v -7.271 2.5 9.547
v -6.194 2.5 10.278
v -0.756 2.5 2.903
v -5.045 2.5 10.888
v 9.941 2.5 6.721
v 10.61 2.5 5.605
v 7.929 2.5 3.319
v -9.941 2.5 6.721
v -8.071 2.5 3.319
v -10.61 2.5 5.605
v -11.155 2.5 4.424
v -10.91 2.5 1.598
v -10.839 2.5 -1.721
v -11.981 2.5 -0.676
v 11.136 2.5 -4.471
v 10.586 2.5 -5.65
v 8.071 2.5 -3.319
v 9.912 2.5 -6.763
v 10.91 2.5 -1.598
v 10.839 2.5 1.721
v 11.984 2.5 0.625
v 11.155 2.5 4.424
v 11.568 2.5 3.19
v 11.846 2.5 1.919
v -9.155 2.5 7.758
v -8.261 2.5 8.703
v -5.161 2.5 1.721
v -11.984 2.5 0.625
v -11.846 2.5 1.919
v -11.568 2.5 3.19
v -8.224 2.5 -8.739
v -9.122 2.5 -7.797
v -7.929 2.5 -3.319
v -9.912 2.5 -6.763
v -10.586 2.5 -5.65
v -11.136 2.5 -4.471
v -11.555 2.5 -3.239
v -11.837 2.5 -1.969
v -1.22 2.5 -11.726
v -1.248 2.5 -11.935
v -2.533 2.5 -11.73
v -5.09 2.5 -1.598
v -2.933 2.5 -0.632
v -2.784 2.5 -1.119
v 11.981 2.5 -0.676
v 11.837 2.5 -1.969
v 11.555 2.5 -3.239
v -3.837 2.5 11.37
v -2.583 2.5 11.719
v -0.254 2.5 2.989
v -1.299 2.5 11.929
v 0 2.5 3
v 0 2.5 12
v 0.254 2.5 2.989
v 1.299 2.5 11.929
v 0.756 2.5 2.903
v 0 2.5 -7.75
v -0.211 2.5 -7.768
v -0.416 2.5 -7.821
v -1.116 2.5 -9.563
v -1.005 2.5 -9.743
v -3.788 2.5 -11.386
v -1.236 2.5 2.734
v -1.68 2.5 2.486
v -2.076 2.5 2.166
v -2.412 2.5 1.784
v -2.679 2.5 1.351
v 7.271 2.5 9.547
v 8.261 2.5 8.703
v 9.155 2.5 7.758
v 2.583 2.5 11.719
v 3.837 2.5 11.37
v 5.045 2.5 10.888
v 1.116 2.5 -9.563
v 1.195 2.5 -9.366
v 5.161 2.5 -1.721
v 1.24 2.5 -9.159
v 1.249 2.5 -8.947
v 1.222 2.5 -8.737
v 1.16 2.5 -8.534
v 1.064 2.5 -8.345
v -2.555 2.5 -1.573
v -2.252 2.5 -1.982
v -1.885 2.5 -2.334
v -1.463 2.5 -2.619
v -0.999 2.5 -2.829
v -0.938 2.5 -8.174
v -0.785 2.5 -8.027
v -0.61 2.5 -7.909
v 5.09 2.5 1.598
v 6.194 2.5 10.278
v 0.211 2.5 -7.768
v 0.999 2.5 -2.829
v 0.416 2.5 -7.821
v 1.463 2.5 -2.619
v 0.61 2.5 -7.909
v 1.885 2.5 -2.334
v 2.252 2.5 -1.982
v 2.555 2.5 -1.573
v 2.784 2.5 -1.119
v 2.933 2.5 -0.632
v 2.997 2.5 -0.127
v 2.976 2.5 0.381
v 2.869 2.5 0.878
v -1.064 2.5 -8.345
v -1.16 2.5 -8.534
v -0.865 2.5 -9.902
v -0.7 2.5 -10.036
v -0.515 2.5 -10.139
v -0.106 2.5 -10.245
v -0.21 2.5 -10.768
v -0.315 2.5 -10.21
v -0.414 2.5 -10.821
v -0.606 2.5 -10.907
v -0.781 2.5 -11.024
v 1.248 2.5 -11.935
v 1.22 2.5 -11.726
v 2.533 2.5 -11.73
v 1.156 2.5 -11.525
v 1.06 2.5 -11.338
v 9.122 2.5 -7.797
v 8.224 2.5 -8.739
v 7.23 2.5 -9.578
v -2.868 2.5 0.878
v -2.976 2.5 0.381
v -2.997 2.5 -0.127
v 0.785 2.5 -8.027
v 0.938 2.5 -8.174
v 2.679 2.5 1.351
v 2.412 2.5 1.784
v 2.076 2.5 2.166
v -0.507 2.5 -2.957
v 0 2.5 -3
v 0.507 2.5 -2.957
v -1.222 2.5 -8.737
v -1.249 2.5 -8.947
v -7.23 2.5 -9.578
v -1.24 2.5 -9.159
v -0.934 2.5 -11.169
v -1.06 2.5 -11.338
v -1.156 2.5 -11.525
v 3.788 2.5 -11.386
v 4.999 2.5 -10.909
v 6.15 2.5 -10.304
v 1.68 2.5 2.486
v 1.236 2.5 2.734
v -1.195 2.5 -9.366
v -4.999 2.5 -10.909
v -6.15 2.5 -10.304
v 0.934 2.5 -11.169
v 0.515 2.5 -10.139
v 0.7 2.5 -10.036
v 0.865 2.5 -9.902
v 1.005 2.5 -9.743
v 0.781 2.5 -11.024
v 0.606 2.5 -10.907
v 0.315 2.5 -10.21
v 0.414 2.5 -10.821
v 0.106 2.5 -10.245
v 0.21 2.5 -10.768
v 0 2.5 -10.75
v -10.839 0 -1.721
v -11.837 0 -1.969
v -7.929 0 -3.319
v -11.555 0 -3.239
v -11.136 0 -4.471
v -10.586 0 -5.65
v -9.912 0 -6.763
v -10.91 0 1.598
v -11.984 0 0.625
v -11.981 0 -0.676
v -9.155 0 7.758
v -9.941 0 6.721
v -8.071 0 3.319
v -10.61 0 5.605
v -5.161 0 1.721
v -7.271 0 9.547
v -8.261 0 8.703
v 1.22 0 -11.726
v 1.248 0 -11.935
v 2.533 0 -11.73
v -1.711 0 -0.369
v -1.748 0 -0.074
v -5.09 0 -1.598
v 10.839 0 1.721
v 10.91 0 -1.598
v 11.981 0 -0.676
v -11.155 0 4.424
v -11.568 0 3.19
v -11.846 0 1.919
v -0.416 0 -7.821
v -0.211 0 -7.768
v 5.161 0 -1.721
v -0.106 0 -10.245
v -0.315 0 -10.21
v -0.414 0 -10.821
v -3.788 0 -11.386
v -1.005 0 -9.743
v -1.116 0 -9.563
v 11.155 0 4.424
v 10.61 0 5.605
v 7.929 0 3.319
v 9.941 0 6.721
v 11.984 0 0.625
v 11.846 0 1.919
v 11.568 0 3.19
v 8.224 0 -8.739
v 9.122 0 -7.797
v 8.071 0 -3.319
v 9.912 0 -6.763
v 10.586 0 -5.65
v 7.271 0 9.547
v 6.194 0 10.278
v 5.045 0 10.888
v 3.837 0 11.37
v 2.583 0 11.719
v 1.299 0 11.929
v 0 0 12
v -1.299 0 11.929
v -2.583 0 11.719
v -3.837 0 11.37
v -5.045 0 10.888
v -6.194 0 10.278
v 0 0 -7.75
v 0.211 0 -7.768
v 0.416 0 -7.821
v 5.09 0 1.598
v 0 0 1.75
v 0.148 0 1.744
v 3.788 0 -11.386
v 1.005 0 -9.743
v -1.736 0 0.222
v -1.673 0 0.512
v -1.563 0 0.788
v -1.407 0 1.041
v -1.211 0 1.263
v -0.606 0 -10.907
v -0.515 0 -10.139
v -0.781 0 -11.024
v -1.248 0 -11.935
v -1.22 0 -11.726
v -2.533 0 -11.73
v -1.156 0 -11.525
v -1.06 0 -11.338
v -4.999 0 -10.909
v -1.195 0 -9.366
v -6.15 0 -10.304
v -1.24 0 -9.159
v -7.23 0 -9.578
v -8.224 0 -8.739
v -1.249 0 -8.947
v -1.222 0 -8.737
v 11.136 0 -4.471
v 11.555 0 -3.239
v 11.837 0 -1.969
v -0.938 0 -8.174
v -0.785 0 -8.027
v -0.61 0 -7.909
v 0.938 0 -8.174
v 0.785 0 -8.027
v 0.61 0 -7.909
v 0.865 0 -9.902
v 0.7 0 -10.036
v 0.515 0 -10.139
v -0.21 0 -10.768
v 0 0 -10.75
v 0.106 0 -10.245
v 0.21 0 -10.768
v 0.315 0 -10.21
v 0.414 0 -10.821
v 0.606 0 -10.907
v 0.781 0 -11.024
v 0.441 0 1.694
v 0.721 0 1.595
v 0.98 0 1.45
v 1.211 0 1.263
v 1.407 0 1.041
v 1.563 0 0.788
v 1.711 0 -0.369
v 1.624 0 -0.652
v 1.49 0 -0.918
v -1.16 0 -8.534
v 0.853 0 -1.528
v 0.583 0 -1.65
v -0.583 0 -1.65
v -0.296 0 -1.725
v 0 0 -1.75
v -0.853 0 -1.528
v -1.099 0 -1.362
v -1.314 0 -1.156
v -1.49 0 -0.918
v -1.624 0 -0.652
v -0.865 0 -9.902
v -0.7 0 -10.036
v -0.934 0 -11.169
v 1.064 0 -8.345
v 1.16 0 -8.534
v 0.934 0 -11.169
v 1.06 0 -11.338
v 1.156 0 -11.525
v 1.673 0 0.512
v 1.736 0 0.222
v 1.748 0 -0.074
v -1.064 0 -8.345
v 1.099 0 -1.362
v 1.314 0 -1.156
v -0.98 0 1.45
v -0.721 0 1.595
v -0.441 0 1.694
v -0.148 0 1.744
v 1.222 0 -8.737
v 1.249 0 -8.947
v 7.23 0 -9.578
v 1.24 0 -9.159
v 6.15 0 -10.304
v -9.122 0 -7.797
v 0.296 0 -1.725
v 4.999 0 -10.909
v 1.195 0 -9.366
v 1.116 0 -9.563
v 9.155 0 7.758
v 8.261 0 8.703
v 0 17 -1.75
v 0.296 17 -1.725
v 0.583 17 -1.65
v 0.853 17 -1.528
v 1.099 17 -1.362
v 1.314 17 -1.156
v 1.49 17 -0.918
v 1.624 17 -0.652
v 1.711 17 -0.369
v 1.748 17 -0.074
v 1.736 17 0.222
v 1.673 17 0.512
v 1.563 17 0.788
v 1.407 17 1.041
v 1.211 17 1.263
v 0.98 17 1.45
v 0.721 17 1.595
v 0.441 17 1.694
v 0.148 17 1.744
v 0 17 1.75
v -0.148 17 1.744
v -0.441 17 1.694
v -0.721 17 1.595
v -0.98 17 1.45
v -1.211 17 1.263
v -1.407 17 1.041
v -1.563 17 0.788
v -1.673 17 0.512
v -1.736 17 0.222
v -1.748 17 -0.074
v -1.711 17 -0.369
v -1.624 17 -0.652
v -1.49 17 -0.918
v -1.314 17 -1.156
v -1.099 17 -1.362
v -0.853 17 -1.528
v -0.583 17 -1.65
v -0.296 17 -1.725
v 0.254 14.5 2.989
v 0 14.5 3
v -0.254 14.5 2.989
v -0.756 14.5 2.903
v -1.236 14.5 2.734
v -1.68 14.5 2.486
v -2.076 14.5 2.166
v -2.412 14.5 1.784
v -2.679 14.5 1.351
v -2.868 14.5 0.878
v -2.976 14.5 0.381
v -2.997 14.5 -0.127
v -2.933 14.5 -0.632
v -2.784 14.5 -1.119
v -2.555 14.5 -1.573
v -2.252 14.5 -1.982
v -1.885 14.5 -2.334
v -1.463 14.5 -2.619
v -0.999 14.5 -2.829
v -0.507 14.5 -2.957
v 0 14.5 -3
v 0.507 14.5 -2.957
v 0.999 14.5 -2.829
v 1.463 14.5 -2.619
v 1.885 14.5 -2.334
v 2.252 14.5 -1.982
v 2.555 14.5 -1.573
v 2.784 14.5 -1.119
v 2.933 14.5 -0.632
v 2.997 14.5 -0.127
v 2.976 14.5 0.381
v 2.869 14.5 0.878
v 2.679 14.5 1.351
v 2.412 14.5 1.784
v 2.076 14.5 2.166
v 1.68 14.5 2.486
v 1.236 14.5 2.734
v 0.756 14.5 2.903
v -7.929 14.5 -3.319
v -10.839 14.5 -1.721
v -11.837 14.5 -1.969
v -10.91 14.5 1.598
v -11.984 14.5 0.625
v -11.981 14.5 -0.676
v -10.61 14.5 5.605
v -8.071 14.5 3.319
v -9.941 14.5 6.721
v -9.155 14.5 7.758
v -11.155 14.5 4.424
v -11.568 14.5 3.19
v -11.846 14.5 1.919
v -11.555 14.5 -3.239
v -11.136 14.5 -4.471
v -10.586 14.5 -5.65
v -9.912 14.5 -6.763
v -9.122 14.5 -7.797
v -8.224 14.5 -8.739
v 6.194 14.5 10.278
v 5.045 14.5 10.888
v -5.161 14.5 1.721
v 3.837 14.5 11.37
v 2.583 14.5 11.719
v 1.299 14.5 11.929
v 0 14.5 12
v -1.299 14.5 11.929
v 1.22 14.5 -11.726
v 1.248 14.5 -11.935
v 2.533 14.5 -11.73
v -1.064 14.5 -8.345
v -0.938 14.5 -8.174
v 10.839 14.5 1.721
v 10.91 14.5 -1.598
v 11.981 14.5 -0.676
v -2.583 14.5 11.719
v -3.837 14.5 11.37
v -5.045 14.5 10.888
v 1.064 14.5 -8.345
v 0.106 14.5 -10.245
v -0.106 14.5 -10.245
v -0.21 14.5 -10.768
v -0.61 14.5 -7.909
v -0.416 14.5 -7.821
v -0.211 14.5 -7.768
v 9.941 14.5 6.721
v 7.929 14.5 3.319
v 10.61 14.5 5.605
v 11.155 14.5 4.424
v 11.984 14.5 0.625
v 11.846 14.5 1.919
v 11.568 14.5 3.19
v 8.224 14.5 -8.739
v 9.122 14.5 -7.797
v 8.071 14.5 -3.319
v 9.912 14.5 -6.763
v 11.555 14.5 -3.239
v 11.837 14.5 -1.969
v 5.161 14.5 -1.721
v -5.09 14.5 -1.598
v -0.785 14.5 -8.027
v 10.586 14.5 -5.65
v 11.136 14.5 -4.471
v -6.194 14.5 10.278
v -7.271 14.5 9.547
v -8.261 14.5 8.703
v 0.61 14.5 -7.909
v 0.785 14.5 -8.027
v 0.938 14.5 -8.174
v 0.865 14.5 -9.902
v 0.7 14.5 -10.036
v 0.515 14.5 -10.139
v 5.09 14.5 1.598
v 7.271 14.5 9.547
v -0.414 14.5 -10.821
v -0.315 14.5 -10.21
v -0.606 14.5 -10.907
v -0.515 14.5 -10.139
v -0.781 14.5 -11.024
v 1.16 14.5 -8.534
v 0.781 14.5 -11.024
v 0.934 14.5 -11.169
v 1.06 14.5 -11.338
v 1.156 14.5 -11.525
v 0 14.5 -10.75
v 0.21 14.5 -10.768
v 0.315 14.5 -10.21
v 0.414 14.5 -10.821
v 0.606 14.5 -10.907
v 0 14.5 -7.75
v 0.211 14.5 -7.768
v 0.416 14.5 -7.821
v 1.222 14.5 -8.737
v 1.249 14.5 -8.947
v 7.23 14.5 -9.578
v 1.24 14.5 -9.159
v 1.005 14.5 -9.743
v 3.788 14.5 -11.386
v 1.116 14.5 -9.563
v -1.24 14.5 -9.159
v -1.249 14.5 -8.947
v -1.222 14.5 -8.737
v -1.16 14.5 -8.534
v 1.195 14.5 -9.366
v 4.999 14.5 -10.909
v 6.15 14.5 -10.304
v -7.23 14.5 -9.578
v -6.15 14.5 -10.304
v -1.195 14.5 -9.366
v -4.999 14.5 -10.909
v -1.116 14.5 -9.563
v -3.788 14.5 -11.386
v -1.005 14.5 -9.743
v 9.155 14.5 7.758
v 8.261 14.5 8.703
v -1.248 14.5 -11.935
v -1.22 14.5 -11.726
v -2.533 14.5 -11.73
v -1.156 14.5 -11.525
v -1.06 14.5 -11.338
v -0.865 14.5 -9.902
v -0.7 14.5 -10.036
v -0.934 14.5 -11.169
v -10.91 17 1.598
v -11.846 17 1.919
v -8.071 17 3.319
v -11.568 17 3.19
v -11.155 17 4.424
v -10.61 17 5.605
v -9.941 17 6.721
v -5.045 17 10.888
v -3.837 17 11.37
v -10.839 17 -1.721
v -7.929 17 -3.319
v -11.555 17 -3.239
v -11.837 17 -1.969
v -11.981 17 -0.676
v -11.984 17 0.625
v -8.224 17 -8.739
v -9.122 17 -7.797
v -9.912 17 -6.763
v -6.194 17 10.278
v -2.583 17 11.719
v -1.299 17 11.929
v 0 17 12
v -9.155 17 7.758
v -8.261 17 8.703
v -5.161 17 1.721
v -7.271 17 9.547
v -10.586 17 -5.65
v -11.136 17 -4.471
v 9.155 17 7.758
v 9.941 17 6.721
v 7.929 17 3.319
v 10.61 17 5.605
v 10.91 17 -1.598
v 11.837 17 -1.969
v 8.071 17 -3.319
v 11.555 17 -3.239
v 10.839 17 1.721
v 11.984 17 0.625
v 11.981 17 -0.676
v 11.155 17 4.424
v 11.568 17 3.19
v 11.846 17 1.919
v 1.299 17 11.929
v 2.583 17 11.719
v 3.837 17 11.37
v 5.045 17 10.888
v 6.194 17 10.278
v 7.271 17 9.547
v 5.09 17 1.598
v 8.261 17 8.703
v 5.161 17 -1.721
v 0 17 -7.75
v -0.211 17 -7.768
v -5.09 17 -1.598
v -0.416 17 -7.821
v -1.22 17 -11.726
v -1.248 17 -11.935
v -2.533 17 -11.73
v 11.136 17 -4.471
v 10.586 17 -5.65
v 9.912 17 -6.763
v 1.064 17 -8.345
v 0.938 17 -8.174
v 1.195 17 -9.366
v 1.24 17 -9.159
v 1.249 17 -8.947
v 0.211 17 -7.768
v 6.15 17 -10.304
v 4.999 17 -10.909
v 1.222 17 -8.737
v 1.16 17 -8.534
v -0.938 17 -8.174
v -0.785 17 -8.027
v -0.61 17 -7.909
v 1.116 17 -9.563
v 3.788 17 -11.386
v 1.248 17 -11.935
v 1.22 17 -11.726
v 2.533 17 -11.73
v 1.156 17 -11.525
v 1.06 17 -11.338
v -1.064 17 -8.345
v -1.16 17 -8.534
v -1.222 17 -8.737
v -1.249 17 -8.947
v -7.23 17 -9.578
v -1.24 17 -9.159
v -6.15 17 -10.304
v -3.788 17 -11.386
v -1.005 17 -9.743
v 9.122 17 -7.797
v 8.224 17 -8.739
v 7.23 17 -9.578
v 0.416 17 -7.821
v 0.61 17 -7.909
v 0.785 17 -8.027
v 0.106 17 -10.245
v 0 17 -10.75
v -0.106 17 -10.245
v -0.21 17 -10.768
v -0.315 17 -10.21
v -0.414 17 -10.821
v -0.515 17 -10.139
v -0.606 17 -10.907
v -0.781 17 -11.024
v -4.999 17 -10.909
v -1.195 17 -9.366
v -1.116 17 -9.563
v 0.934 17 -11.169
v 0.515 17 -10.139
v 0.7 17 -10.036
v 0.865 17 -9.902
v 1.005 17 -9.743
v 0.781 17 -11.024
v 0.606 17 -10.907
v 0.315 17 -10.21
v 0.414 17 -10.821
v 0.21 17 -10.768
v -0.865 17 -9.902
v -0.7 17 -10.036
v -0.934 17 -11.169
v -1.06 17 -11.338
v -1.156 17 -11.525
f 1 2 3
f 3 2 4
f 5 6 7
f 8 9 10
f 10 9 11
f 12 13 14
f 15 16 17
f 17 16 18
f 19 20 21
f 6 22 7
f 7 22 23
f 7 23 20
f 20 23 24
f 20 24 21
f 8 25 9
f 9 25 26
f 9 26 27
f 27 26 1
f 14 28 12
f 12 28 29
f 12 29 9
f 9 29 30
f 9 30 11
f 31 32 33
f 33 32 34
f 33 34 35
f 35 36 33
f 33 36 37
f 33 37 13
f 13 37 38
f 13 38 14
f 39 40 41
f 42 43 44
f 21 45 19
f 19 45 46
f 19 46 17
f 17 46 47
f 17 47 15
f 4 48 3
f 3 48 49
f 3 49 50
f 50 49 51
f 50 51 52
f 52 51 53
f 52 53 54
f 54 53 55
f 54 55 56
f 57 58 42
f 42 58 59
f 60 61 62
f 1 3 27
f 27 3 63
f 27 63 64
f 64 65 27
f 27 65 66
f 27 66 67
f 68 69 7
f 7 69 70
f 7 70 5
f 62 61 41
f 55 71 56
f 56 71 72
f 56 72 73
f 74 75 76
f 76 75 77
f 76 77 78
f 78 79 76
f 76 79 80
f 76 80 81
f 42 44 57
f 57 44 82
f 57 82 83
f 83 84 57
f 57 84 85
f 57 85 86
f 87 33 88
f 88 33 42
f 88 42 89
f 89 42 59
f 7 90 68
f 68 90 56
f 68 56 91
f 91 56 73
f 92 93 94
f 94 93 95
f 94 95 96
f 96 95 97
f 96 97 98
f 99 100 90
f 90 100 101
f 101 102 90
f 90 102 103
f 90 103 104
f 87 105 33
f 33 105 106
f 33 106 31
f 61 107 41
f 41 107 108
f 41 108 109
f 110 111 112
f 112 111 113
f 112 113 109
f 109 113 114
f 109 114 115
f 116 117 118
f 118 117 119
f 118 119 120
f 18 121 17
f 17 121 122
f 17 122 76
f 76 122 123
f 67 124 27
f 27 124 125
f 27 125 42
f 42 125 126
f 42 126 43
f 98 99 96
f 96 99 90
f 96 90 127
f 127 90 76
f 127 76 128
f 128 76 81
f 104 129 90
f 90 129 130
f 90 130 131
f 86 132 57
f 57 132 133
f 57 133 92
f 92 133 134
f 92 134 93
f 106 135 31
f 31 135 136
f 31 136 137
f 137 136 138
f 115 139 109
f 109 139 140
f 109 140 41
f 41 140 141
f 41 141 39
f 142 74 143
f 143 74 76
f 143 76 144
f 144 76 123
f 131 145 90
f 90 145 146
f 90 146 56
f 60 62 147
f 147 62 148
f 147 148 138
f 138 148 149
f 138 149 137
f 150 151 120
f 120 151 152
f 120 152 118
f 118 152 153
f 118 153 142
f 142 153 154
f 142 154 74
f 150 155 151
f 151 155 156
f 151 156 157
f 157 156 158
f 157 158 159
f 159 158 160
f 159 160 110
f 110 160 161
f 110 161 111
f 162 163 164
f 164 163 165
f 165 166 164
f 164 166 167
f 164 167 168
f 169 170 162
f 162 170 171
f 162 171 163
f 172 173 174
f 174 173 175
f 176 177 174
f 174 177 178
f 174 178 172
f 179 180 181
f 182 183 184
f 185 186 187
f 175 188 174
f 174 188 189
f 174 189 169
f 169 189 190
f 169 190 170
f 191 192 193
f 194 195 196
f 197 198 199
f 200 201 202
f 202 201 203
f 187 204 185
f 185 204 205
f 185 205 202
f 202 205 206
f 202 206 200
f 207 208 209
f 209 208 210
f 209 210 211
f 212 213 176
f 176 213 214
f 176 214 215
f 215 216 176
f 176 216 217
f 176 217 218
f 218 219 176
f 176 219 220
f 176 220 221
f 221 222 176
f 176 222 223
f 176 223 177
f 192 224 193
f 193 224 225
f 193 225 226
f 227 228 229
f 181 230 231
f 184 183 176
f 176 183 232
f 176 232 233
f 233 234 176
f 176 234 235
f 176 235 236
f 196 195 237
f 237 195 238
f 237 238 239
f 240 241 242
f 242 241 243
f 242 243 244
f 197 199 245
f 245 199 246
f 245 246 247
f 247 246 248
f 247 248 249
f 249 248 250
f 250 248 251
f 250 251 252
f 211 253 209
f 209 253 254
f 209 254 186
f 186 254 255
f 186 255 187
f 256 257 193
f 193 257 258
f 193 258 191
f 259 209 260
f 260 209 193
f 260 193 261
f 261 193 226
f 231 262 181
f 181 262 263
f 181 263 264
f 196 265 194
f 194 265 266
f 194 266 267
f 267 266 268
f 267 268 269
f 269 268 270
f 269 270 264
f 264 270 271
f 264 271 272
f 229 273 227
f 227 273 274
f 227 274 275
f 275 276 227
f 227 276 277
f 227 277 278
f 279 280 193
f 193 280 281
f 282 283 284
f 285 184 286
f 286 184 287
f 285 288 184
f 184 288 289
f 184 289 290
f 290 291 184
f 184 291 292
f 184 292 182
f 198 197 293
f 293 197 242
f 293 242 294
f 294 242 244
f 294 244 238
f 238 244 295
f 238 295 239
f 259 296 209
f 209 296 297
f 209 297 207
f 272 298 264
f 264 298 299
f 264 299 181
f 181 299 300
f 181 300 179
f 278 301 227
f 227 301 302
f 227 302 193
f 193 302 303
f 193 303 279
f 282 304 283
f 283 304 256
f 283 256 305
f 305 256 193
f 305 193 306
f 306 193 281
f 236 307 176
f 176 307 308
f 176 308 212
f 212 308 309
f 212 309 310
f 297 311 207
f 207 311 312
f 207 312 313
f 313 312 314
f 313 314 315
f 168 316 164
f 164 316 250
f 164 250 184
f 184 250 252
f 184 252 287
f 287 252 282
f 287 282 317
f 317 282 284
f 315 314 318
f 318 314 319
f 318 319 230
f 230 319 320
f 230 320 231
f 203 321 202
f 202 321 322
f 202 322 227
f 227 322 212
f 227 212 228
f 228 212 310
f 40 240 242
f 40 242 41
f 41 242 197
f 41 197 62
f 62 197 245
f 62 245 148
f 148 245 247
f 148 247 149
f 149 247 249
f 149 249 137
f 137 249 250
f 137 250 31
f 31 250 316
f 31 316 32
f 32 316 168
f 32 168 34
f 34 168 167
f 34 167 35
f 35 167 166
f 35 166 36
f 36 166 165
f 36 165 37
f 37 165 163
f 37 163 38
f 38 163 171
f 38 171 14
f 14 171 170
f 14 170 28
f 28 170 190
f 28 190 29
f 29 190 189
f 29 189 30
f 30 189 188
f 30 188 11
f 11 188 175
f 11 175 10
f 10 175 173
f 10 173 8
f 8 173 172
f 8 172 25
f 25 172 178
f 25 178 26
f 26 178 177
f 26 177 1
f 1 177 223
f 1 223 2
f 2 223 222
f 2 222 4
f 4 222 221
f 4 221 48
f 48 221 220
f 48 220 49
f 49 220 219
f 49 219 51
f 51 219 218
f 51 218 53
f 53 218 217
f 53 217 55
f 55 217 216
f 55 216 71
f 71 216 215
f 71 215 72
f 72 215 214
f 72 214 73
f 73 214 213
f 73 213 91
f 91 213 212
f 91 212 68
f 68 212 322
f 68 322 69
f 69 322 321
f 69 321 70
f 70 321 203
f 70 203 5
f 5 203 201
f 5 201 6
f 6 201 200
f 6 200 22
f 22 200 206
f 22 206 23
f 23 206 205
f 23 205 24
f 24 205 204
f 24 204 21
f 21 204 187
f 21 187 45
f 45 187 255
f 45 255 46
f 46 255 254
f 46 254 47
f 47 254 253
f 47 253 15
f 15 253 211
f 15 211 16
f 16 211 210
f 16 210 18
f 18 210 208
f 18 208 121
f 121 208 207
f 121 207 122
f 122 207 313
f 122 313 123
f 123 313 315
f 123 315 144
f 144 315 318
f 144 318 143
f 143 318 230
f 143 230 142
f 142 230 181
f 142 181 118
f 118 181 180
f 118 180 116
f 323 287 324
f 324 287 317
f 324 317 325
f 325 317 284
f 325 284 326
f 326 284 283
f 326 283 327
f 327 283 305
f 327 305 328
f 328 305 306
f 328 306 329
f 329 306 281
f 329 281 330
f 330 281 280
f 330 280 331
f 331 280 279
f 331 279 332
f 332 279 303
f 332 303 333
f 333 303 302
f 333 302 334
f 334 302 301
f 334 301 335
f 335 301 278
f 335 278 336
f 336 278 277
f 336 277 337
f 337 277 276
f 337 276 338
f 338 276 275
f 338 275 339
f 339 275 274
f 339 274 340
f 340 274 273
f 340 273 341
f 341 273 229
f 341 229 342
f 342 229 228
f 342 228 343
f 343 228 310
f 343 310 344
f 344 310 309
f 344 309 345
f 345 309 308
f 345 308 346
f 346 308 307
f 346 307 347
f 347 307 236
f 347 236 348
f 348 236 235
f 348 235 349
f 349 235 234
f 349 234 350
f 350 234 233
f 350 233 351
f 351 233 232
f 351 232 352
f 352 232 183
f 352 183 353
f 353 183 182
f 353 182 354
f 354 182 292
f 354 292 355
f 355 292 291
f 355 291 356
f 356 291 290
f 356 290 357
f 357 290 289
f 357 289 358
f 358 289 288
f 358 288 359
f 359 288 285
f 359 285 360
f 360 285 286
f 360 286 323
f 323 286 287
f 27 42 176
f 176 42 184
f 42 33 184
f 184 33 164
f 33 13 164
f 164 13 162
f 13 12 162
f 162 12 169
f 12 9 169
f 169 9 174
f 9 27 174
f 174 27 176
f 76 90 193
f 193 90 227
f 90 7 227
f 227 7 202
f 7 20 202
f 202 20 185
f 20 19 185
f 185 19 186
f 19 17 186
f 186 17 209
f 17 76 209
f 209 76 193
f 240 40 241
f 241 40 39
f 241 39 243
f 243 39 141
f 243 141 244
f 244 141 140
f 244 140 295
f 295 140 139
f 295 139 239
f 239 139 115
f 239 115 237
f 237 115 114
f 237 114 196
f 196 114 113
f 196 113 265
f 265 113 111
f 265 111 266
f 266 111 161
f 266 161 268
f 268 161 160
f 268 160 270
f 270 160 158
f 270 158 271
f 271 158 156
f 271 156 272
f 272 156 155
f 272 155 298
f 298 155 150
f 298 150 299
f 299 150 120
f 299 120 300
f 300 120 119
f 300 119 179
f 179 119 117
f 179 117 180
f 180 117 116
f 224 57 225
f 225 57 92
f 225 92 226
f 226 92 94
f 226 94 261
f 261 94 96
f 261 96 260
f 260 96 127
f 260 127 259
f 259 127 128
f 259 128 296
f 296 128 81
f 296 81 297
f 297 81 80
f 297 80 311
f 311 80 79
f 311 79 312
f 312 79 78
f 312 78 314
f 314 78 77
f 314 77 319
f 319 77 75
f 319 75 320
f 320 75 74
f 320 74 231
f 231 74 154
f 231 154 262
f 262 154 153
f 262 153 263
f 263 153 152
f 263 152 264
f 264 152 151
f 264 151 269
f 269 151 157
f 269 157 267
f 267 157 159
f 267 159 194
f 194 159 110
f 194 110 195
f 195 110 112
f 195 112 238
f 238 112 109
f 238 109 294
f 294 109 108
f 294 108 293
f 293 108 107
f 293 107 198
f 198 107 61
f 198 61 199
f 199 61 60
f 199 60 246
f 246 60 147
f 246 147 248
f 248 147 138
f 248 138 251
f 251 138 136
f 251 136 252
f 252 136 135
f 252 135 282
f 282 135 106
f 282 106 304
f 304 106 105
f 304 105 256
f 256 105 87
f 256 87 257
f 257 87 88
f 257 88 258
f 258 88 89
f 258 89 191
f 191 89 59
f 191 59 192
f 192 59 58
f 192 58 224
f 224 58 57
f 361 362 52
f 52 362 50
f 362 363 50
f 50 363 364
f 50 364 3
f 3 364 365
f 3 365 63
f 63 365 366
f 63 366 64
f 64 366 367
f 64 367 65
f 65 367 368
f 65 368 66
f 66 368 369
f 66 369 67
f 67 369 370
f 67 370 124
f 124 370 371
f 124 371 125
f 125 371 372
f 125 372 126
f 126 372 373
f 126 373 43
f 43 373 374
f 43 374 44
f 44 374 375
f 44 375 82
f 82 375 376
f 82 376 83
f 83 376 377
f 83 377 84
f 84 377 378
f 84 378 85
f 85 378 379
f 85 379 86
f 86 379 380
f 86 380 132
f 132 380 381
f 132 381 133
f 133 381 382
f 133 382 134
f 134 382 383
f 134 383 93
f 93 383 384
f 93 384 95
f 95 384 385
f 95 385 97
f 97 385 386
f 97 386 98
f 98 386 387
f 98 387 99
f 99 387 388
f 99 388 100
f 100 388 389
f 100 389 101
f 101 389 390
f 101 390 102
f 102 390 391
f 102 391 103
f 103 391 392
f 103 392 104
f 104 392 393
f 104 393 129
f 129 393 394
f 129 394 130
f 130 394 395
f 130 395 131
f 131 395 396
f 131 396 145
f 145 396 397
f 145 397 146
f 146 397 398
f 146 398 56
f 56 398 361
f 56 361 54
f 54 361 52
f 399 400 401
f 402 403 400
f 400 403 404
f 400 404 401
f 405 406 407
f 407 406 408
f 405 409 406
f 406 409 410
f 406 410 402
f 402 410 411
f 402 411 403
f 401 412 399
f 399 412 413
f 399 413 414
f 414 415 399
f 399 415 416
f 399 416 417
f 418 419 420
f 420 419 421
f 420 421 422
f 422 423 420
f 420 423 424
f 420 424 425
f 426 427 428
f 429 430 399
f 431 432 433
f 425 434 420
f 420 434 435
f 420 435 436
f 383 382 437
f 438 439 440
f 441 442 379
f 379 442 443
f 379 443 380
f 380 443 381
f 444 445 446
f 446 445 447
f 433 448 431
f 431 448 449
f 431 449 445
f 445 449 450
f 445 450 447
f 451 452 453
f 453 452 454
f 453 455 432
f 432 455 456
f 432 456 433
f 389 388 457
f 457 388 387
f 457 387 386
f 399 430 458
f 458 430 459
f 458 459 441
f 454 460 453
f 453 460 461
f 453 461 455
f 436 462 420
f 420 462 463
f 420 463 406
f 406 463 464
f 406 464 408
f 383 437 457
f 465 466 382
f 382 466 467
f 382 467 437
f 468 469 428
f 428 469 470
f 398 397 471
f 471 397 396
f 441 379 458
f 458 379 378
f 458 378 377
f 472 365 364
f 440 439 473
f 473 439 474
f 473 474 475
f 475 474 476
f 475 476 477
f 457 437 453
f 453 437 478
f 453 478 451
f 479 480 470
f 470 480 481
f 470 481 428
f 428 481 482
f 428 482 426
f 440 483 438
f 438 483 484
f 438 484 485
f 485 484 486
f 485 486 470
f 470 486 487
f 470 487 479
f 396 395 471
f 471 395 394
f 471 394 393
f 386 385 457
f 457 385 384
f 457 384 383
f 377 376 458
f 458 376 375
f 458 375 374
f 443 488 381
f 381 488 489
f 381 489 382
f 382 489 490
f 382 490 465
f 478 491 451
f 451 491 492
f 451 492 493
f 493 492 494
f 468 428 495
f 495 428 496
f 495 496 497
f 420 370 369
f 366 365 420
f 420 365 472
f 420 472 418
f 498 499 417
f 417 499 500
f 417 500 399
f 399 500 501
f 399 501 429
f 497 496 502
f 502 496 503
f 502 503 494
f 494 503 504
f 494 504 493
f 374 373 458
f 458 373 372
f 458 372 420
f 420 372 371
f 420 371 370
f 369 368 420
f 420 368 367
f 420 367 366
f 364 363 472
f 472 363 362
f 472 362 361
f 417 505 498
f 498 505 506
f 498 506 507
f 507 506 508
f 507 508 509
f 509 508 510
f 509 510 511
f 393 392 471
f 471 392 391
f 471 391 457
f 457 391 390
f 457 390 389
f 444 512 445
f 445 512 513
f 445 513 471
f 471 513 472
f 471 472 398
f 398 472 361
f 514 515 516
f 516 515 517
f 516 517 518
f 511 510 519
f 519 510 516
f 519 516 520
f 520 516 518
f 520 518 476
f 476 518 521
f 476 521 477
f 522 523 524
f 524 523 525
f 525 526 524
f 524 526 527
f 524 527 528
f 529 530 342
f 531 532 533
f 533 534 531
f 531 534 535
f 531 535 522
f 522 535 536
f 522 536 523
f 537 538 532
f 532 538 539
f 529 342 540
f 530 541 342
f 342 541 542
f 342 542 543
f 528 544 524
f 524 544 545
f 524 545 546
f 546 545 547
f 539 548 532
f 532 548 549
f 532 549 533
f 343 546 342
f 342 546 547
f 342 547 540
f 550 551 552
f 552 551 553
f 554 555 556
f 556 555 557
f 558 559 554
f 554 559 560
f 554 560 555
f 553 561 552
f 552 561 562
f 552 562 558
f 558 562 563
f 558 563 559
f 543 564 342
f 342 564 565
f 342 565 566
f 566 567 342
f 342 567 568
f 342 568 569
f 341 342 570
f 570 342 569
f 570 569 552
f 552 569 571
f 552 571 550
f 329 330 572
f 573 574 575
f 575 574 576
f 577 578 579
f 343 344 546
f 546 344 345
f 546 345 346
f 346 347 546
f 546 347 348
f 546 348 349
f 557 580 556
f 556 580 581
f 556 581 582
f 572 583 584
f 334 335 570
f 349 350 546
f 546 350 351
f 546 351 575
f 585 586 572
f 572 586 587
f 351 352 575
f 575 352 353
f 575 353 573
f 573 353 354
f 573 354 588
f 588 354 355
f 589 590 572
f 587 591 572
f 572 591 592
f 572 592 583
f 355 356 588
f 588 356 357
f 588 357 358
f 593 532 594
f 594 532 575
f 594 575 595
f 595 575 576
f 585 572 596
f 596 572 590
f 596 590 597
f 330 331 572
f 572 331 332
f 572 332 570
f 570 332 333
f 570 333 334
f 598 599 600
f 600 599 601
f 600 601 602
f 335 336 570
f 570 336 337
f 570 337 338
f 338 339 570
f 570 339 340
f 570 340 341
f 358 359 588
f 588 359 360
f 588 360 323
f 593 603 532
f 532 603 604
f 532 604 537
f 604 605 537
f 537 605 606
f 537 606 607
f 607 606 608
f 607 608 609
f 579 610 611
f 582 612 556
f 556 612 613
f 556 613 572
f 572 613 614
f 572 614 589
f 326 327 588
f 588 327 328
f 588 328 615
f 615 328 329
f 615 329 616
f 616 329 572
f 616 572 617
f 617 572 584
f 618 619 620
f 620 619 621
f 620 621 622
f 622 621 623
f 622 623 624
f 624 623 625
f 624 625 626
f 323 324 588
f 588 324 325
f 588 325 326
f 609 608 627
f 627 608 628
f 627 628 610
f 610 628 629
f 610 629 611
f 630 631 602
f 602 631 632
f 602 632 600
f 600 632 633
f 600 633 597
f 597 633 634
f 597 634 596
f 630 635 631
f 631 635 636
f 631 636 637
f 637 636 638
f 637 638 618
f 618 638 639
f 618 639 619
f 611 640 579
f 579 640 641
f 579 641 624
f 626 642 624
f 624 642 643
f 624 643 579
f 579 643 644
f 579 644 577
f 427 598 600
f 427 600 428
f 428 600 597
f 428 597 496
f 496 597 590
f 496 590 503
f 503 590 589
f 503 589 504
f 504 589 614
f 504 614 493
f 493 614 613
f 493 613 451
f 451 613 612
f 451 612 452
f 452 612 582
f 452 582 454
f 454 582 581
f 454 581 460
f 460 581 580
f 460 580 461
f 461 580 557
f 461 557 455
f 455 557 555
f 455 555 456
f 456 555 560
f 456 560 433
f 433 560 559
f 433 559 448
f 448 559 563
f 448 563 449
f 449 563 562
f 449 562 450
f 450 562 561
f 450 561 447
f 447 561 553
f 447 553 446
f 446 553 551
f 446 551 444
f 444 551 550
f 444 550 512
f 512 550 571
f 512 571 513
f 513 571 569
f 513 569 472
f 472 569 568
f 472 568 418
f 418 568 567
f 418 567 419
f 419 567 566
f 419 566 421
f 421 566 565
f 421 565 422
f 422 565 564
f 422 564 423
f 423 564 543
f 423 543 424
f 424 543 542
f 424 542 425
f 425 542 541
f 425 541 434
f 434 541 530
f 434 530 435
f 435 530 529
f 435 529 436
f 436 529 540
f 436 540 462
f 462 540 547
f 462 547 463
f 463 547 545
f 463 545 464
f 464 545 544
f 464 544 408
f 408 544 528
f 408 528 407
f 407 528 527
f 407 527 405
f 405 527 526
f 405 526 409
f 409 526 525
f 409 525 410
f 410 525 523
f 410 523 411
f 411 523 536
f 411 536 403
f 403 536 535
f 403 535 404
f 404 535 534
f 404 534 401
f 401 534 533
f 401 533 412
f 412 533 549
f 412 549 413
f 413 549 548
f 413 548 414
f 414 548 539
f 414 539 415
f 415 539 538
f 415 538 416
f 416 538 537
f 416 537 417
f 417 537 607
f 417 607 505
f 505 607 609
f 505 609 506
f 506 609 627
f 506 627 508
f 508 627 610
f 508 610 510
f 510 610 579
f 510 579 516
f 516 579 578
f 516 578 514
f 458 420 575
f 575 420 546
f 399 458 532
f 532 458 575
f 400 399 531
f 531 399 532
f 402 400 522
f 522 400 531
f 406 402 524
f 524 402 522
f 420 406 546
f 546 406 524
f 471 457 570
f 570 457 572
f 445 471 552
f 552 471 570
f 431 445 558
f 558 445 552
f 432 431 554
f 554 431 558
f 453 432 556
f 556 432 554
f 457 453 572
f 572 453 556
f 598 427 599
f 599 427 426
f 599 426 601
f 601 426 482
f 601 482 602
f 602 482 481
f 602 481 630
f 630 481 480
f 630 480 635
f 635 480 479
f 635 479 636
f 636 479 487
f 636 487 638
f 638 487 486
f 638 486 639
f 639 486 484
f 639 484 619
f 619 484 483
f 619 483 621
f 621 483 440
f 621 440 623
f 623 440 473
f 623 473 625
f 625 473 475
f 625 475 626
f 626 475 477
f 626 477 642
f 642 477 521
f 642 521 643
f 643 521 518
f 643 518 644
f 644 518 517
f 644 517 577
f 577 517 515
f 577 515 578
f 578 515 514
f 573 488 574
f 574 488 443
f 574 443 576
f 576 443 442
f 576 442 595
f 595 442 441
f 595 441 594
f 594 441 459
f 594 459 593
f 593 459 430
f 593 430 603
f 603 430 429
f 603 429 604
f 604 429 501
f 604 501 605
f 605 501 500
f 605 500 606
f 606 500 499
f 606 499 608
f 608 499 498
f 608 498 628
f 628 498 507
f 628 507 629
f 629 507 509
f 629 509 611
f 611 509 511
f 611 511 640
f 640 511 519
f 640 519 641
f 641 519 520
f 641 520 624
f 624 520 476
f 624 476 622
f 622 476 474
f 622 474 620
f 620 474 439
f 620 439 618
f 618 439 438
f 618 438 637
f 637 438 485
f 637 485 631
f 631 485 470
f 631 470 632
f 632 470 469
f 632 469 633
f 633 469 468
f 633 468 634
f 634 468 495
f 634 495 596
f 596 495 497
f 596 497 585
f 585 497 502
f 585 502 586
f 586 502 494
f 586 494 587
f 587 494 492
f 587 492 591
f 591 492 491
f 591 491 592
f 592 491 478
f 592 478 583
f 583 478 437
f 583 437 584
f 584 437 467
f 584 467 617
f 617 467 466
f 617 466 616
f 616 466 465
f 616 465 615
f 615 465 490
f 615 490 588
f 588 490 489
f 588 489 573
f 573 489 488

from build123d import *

# Parameters (mm, degrees)
SKETCH1_R           = 12
SKETCH1_R_2         = 1.75
BOSS_EXTRUDE1_DEPTH = 2.5
CUT_EXTRUDE3_DEPTH  = 2.5
SKETCH4_R           = 1.25
CUT_EXTRUDE4_DEPTH  = 5
SKETCH2_R           = 3
SKETCH2_R_2         = 1.75
BOSS_EXTRUDE2_DEPTH = 6


with BuildPart() as part:
    # Sketch1 → Boss-Extrude1 (new body)
    with BuildSketch(Plane(origin=(0, 0, 0), x_dir=(1, 0, 0), z_dir=(0, 1, 0))):
        Circle(SKETCH1_R)
        Circle(SKETCH1_R_2, mode=Mode.SUBTRACT)
    extrude(amount=BOSS_EXTRUDE1_DEPTH)

    # Sketch3 → Cut-Extrude3 (cut)
    with BuildSketch(Plane.XZ):
        Polygon((-5.161329605, 1.721273866), (-8.071331697, 3.318997608), (-10.910002092, 1.597723742), (-10.838670395, -1.721273866), (-7.928668303, -3.318997608), (-5.089997908, -1.597723742), align=None)
        Polygon((5.161329605, -1.721273866), (8.071331697, -3.318997608), (10.910002092, -1.597723742), (10.838670395, 1.721273866), (7.928668303, 3.318997608), (5.089997908, 1.597723742), align=None)
    extrude(amount=-CUT_EXTRUDE3_DEPTH, mode=Mode.SUBTRACT)

    # Sketch4 → Cut-Extrude4 (cut)
    with BuildSketch(Plane(origin=(0, 2.5, 0), x_dir=(1, 0, 0), z_dir=(0, 1, 0))):
        with Locations((0, 9)):
            Circle(SKETCH4_R)
        with Locations((0, 12)):
            Circle(SKETCH4_R)
    extrude(amount=-CUT_EXTRUDE4_DEPTH, mode=Mode.SUBTRACT)

    # Sketch2 → Boss-Extrude2 (add)
    with BuildSketch(Plane(origin=(0, 2.5, 0), x_dir=(1, 0, 0), z_dir=(0, 1, 0))):
        Circle(SKETCH2_R)
        Circle(SKETCH2_R_2, mode=Mode.SUBTRACT)
    extrude(amount=BOSS_EXTRUDE2_DEPTH)

    # Mirror7: part across plane


with BuildPart() as part_1:
    add(part.part)
    add(part.part.mirror(Plane.ZX.offset(8.5)))


solid = part_1.part
